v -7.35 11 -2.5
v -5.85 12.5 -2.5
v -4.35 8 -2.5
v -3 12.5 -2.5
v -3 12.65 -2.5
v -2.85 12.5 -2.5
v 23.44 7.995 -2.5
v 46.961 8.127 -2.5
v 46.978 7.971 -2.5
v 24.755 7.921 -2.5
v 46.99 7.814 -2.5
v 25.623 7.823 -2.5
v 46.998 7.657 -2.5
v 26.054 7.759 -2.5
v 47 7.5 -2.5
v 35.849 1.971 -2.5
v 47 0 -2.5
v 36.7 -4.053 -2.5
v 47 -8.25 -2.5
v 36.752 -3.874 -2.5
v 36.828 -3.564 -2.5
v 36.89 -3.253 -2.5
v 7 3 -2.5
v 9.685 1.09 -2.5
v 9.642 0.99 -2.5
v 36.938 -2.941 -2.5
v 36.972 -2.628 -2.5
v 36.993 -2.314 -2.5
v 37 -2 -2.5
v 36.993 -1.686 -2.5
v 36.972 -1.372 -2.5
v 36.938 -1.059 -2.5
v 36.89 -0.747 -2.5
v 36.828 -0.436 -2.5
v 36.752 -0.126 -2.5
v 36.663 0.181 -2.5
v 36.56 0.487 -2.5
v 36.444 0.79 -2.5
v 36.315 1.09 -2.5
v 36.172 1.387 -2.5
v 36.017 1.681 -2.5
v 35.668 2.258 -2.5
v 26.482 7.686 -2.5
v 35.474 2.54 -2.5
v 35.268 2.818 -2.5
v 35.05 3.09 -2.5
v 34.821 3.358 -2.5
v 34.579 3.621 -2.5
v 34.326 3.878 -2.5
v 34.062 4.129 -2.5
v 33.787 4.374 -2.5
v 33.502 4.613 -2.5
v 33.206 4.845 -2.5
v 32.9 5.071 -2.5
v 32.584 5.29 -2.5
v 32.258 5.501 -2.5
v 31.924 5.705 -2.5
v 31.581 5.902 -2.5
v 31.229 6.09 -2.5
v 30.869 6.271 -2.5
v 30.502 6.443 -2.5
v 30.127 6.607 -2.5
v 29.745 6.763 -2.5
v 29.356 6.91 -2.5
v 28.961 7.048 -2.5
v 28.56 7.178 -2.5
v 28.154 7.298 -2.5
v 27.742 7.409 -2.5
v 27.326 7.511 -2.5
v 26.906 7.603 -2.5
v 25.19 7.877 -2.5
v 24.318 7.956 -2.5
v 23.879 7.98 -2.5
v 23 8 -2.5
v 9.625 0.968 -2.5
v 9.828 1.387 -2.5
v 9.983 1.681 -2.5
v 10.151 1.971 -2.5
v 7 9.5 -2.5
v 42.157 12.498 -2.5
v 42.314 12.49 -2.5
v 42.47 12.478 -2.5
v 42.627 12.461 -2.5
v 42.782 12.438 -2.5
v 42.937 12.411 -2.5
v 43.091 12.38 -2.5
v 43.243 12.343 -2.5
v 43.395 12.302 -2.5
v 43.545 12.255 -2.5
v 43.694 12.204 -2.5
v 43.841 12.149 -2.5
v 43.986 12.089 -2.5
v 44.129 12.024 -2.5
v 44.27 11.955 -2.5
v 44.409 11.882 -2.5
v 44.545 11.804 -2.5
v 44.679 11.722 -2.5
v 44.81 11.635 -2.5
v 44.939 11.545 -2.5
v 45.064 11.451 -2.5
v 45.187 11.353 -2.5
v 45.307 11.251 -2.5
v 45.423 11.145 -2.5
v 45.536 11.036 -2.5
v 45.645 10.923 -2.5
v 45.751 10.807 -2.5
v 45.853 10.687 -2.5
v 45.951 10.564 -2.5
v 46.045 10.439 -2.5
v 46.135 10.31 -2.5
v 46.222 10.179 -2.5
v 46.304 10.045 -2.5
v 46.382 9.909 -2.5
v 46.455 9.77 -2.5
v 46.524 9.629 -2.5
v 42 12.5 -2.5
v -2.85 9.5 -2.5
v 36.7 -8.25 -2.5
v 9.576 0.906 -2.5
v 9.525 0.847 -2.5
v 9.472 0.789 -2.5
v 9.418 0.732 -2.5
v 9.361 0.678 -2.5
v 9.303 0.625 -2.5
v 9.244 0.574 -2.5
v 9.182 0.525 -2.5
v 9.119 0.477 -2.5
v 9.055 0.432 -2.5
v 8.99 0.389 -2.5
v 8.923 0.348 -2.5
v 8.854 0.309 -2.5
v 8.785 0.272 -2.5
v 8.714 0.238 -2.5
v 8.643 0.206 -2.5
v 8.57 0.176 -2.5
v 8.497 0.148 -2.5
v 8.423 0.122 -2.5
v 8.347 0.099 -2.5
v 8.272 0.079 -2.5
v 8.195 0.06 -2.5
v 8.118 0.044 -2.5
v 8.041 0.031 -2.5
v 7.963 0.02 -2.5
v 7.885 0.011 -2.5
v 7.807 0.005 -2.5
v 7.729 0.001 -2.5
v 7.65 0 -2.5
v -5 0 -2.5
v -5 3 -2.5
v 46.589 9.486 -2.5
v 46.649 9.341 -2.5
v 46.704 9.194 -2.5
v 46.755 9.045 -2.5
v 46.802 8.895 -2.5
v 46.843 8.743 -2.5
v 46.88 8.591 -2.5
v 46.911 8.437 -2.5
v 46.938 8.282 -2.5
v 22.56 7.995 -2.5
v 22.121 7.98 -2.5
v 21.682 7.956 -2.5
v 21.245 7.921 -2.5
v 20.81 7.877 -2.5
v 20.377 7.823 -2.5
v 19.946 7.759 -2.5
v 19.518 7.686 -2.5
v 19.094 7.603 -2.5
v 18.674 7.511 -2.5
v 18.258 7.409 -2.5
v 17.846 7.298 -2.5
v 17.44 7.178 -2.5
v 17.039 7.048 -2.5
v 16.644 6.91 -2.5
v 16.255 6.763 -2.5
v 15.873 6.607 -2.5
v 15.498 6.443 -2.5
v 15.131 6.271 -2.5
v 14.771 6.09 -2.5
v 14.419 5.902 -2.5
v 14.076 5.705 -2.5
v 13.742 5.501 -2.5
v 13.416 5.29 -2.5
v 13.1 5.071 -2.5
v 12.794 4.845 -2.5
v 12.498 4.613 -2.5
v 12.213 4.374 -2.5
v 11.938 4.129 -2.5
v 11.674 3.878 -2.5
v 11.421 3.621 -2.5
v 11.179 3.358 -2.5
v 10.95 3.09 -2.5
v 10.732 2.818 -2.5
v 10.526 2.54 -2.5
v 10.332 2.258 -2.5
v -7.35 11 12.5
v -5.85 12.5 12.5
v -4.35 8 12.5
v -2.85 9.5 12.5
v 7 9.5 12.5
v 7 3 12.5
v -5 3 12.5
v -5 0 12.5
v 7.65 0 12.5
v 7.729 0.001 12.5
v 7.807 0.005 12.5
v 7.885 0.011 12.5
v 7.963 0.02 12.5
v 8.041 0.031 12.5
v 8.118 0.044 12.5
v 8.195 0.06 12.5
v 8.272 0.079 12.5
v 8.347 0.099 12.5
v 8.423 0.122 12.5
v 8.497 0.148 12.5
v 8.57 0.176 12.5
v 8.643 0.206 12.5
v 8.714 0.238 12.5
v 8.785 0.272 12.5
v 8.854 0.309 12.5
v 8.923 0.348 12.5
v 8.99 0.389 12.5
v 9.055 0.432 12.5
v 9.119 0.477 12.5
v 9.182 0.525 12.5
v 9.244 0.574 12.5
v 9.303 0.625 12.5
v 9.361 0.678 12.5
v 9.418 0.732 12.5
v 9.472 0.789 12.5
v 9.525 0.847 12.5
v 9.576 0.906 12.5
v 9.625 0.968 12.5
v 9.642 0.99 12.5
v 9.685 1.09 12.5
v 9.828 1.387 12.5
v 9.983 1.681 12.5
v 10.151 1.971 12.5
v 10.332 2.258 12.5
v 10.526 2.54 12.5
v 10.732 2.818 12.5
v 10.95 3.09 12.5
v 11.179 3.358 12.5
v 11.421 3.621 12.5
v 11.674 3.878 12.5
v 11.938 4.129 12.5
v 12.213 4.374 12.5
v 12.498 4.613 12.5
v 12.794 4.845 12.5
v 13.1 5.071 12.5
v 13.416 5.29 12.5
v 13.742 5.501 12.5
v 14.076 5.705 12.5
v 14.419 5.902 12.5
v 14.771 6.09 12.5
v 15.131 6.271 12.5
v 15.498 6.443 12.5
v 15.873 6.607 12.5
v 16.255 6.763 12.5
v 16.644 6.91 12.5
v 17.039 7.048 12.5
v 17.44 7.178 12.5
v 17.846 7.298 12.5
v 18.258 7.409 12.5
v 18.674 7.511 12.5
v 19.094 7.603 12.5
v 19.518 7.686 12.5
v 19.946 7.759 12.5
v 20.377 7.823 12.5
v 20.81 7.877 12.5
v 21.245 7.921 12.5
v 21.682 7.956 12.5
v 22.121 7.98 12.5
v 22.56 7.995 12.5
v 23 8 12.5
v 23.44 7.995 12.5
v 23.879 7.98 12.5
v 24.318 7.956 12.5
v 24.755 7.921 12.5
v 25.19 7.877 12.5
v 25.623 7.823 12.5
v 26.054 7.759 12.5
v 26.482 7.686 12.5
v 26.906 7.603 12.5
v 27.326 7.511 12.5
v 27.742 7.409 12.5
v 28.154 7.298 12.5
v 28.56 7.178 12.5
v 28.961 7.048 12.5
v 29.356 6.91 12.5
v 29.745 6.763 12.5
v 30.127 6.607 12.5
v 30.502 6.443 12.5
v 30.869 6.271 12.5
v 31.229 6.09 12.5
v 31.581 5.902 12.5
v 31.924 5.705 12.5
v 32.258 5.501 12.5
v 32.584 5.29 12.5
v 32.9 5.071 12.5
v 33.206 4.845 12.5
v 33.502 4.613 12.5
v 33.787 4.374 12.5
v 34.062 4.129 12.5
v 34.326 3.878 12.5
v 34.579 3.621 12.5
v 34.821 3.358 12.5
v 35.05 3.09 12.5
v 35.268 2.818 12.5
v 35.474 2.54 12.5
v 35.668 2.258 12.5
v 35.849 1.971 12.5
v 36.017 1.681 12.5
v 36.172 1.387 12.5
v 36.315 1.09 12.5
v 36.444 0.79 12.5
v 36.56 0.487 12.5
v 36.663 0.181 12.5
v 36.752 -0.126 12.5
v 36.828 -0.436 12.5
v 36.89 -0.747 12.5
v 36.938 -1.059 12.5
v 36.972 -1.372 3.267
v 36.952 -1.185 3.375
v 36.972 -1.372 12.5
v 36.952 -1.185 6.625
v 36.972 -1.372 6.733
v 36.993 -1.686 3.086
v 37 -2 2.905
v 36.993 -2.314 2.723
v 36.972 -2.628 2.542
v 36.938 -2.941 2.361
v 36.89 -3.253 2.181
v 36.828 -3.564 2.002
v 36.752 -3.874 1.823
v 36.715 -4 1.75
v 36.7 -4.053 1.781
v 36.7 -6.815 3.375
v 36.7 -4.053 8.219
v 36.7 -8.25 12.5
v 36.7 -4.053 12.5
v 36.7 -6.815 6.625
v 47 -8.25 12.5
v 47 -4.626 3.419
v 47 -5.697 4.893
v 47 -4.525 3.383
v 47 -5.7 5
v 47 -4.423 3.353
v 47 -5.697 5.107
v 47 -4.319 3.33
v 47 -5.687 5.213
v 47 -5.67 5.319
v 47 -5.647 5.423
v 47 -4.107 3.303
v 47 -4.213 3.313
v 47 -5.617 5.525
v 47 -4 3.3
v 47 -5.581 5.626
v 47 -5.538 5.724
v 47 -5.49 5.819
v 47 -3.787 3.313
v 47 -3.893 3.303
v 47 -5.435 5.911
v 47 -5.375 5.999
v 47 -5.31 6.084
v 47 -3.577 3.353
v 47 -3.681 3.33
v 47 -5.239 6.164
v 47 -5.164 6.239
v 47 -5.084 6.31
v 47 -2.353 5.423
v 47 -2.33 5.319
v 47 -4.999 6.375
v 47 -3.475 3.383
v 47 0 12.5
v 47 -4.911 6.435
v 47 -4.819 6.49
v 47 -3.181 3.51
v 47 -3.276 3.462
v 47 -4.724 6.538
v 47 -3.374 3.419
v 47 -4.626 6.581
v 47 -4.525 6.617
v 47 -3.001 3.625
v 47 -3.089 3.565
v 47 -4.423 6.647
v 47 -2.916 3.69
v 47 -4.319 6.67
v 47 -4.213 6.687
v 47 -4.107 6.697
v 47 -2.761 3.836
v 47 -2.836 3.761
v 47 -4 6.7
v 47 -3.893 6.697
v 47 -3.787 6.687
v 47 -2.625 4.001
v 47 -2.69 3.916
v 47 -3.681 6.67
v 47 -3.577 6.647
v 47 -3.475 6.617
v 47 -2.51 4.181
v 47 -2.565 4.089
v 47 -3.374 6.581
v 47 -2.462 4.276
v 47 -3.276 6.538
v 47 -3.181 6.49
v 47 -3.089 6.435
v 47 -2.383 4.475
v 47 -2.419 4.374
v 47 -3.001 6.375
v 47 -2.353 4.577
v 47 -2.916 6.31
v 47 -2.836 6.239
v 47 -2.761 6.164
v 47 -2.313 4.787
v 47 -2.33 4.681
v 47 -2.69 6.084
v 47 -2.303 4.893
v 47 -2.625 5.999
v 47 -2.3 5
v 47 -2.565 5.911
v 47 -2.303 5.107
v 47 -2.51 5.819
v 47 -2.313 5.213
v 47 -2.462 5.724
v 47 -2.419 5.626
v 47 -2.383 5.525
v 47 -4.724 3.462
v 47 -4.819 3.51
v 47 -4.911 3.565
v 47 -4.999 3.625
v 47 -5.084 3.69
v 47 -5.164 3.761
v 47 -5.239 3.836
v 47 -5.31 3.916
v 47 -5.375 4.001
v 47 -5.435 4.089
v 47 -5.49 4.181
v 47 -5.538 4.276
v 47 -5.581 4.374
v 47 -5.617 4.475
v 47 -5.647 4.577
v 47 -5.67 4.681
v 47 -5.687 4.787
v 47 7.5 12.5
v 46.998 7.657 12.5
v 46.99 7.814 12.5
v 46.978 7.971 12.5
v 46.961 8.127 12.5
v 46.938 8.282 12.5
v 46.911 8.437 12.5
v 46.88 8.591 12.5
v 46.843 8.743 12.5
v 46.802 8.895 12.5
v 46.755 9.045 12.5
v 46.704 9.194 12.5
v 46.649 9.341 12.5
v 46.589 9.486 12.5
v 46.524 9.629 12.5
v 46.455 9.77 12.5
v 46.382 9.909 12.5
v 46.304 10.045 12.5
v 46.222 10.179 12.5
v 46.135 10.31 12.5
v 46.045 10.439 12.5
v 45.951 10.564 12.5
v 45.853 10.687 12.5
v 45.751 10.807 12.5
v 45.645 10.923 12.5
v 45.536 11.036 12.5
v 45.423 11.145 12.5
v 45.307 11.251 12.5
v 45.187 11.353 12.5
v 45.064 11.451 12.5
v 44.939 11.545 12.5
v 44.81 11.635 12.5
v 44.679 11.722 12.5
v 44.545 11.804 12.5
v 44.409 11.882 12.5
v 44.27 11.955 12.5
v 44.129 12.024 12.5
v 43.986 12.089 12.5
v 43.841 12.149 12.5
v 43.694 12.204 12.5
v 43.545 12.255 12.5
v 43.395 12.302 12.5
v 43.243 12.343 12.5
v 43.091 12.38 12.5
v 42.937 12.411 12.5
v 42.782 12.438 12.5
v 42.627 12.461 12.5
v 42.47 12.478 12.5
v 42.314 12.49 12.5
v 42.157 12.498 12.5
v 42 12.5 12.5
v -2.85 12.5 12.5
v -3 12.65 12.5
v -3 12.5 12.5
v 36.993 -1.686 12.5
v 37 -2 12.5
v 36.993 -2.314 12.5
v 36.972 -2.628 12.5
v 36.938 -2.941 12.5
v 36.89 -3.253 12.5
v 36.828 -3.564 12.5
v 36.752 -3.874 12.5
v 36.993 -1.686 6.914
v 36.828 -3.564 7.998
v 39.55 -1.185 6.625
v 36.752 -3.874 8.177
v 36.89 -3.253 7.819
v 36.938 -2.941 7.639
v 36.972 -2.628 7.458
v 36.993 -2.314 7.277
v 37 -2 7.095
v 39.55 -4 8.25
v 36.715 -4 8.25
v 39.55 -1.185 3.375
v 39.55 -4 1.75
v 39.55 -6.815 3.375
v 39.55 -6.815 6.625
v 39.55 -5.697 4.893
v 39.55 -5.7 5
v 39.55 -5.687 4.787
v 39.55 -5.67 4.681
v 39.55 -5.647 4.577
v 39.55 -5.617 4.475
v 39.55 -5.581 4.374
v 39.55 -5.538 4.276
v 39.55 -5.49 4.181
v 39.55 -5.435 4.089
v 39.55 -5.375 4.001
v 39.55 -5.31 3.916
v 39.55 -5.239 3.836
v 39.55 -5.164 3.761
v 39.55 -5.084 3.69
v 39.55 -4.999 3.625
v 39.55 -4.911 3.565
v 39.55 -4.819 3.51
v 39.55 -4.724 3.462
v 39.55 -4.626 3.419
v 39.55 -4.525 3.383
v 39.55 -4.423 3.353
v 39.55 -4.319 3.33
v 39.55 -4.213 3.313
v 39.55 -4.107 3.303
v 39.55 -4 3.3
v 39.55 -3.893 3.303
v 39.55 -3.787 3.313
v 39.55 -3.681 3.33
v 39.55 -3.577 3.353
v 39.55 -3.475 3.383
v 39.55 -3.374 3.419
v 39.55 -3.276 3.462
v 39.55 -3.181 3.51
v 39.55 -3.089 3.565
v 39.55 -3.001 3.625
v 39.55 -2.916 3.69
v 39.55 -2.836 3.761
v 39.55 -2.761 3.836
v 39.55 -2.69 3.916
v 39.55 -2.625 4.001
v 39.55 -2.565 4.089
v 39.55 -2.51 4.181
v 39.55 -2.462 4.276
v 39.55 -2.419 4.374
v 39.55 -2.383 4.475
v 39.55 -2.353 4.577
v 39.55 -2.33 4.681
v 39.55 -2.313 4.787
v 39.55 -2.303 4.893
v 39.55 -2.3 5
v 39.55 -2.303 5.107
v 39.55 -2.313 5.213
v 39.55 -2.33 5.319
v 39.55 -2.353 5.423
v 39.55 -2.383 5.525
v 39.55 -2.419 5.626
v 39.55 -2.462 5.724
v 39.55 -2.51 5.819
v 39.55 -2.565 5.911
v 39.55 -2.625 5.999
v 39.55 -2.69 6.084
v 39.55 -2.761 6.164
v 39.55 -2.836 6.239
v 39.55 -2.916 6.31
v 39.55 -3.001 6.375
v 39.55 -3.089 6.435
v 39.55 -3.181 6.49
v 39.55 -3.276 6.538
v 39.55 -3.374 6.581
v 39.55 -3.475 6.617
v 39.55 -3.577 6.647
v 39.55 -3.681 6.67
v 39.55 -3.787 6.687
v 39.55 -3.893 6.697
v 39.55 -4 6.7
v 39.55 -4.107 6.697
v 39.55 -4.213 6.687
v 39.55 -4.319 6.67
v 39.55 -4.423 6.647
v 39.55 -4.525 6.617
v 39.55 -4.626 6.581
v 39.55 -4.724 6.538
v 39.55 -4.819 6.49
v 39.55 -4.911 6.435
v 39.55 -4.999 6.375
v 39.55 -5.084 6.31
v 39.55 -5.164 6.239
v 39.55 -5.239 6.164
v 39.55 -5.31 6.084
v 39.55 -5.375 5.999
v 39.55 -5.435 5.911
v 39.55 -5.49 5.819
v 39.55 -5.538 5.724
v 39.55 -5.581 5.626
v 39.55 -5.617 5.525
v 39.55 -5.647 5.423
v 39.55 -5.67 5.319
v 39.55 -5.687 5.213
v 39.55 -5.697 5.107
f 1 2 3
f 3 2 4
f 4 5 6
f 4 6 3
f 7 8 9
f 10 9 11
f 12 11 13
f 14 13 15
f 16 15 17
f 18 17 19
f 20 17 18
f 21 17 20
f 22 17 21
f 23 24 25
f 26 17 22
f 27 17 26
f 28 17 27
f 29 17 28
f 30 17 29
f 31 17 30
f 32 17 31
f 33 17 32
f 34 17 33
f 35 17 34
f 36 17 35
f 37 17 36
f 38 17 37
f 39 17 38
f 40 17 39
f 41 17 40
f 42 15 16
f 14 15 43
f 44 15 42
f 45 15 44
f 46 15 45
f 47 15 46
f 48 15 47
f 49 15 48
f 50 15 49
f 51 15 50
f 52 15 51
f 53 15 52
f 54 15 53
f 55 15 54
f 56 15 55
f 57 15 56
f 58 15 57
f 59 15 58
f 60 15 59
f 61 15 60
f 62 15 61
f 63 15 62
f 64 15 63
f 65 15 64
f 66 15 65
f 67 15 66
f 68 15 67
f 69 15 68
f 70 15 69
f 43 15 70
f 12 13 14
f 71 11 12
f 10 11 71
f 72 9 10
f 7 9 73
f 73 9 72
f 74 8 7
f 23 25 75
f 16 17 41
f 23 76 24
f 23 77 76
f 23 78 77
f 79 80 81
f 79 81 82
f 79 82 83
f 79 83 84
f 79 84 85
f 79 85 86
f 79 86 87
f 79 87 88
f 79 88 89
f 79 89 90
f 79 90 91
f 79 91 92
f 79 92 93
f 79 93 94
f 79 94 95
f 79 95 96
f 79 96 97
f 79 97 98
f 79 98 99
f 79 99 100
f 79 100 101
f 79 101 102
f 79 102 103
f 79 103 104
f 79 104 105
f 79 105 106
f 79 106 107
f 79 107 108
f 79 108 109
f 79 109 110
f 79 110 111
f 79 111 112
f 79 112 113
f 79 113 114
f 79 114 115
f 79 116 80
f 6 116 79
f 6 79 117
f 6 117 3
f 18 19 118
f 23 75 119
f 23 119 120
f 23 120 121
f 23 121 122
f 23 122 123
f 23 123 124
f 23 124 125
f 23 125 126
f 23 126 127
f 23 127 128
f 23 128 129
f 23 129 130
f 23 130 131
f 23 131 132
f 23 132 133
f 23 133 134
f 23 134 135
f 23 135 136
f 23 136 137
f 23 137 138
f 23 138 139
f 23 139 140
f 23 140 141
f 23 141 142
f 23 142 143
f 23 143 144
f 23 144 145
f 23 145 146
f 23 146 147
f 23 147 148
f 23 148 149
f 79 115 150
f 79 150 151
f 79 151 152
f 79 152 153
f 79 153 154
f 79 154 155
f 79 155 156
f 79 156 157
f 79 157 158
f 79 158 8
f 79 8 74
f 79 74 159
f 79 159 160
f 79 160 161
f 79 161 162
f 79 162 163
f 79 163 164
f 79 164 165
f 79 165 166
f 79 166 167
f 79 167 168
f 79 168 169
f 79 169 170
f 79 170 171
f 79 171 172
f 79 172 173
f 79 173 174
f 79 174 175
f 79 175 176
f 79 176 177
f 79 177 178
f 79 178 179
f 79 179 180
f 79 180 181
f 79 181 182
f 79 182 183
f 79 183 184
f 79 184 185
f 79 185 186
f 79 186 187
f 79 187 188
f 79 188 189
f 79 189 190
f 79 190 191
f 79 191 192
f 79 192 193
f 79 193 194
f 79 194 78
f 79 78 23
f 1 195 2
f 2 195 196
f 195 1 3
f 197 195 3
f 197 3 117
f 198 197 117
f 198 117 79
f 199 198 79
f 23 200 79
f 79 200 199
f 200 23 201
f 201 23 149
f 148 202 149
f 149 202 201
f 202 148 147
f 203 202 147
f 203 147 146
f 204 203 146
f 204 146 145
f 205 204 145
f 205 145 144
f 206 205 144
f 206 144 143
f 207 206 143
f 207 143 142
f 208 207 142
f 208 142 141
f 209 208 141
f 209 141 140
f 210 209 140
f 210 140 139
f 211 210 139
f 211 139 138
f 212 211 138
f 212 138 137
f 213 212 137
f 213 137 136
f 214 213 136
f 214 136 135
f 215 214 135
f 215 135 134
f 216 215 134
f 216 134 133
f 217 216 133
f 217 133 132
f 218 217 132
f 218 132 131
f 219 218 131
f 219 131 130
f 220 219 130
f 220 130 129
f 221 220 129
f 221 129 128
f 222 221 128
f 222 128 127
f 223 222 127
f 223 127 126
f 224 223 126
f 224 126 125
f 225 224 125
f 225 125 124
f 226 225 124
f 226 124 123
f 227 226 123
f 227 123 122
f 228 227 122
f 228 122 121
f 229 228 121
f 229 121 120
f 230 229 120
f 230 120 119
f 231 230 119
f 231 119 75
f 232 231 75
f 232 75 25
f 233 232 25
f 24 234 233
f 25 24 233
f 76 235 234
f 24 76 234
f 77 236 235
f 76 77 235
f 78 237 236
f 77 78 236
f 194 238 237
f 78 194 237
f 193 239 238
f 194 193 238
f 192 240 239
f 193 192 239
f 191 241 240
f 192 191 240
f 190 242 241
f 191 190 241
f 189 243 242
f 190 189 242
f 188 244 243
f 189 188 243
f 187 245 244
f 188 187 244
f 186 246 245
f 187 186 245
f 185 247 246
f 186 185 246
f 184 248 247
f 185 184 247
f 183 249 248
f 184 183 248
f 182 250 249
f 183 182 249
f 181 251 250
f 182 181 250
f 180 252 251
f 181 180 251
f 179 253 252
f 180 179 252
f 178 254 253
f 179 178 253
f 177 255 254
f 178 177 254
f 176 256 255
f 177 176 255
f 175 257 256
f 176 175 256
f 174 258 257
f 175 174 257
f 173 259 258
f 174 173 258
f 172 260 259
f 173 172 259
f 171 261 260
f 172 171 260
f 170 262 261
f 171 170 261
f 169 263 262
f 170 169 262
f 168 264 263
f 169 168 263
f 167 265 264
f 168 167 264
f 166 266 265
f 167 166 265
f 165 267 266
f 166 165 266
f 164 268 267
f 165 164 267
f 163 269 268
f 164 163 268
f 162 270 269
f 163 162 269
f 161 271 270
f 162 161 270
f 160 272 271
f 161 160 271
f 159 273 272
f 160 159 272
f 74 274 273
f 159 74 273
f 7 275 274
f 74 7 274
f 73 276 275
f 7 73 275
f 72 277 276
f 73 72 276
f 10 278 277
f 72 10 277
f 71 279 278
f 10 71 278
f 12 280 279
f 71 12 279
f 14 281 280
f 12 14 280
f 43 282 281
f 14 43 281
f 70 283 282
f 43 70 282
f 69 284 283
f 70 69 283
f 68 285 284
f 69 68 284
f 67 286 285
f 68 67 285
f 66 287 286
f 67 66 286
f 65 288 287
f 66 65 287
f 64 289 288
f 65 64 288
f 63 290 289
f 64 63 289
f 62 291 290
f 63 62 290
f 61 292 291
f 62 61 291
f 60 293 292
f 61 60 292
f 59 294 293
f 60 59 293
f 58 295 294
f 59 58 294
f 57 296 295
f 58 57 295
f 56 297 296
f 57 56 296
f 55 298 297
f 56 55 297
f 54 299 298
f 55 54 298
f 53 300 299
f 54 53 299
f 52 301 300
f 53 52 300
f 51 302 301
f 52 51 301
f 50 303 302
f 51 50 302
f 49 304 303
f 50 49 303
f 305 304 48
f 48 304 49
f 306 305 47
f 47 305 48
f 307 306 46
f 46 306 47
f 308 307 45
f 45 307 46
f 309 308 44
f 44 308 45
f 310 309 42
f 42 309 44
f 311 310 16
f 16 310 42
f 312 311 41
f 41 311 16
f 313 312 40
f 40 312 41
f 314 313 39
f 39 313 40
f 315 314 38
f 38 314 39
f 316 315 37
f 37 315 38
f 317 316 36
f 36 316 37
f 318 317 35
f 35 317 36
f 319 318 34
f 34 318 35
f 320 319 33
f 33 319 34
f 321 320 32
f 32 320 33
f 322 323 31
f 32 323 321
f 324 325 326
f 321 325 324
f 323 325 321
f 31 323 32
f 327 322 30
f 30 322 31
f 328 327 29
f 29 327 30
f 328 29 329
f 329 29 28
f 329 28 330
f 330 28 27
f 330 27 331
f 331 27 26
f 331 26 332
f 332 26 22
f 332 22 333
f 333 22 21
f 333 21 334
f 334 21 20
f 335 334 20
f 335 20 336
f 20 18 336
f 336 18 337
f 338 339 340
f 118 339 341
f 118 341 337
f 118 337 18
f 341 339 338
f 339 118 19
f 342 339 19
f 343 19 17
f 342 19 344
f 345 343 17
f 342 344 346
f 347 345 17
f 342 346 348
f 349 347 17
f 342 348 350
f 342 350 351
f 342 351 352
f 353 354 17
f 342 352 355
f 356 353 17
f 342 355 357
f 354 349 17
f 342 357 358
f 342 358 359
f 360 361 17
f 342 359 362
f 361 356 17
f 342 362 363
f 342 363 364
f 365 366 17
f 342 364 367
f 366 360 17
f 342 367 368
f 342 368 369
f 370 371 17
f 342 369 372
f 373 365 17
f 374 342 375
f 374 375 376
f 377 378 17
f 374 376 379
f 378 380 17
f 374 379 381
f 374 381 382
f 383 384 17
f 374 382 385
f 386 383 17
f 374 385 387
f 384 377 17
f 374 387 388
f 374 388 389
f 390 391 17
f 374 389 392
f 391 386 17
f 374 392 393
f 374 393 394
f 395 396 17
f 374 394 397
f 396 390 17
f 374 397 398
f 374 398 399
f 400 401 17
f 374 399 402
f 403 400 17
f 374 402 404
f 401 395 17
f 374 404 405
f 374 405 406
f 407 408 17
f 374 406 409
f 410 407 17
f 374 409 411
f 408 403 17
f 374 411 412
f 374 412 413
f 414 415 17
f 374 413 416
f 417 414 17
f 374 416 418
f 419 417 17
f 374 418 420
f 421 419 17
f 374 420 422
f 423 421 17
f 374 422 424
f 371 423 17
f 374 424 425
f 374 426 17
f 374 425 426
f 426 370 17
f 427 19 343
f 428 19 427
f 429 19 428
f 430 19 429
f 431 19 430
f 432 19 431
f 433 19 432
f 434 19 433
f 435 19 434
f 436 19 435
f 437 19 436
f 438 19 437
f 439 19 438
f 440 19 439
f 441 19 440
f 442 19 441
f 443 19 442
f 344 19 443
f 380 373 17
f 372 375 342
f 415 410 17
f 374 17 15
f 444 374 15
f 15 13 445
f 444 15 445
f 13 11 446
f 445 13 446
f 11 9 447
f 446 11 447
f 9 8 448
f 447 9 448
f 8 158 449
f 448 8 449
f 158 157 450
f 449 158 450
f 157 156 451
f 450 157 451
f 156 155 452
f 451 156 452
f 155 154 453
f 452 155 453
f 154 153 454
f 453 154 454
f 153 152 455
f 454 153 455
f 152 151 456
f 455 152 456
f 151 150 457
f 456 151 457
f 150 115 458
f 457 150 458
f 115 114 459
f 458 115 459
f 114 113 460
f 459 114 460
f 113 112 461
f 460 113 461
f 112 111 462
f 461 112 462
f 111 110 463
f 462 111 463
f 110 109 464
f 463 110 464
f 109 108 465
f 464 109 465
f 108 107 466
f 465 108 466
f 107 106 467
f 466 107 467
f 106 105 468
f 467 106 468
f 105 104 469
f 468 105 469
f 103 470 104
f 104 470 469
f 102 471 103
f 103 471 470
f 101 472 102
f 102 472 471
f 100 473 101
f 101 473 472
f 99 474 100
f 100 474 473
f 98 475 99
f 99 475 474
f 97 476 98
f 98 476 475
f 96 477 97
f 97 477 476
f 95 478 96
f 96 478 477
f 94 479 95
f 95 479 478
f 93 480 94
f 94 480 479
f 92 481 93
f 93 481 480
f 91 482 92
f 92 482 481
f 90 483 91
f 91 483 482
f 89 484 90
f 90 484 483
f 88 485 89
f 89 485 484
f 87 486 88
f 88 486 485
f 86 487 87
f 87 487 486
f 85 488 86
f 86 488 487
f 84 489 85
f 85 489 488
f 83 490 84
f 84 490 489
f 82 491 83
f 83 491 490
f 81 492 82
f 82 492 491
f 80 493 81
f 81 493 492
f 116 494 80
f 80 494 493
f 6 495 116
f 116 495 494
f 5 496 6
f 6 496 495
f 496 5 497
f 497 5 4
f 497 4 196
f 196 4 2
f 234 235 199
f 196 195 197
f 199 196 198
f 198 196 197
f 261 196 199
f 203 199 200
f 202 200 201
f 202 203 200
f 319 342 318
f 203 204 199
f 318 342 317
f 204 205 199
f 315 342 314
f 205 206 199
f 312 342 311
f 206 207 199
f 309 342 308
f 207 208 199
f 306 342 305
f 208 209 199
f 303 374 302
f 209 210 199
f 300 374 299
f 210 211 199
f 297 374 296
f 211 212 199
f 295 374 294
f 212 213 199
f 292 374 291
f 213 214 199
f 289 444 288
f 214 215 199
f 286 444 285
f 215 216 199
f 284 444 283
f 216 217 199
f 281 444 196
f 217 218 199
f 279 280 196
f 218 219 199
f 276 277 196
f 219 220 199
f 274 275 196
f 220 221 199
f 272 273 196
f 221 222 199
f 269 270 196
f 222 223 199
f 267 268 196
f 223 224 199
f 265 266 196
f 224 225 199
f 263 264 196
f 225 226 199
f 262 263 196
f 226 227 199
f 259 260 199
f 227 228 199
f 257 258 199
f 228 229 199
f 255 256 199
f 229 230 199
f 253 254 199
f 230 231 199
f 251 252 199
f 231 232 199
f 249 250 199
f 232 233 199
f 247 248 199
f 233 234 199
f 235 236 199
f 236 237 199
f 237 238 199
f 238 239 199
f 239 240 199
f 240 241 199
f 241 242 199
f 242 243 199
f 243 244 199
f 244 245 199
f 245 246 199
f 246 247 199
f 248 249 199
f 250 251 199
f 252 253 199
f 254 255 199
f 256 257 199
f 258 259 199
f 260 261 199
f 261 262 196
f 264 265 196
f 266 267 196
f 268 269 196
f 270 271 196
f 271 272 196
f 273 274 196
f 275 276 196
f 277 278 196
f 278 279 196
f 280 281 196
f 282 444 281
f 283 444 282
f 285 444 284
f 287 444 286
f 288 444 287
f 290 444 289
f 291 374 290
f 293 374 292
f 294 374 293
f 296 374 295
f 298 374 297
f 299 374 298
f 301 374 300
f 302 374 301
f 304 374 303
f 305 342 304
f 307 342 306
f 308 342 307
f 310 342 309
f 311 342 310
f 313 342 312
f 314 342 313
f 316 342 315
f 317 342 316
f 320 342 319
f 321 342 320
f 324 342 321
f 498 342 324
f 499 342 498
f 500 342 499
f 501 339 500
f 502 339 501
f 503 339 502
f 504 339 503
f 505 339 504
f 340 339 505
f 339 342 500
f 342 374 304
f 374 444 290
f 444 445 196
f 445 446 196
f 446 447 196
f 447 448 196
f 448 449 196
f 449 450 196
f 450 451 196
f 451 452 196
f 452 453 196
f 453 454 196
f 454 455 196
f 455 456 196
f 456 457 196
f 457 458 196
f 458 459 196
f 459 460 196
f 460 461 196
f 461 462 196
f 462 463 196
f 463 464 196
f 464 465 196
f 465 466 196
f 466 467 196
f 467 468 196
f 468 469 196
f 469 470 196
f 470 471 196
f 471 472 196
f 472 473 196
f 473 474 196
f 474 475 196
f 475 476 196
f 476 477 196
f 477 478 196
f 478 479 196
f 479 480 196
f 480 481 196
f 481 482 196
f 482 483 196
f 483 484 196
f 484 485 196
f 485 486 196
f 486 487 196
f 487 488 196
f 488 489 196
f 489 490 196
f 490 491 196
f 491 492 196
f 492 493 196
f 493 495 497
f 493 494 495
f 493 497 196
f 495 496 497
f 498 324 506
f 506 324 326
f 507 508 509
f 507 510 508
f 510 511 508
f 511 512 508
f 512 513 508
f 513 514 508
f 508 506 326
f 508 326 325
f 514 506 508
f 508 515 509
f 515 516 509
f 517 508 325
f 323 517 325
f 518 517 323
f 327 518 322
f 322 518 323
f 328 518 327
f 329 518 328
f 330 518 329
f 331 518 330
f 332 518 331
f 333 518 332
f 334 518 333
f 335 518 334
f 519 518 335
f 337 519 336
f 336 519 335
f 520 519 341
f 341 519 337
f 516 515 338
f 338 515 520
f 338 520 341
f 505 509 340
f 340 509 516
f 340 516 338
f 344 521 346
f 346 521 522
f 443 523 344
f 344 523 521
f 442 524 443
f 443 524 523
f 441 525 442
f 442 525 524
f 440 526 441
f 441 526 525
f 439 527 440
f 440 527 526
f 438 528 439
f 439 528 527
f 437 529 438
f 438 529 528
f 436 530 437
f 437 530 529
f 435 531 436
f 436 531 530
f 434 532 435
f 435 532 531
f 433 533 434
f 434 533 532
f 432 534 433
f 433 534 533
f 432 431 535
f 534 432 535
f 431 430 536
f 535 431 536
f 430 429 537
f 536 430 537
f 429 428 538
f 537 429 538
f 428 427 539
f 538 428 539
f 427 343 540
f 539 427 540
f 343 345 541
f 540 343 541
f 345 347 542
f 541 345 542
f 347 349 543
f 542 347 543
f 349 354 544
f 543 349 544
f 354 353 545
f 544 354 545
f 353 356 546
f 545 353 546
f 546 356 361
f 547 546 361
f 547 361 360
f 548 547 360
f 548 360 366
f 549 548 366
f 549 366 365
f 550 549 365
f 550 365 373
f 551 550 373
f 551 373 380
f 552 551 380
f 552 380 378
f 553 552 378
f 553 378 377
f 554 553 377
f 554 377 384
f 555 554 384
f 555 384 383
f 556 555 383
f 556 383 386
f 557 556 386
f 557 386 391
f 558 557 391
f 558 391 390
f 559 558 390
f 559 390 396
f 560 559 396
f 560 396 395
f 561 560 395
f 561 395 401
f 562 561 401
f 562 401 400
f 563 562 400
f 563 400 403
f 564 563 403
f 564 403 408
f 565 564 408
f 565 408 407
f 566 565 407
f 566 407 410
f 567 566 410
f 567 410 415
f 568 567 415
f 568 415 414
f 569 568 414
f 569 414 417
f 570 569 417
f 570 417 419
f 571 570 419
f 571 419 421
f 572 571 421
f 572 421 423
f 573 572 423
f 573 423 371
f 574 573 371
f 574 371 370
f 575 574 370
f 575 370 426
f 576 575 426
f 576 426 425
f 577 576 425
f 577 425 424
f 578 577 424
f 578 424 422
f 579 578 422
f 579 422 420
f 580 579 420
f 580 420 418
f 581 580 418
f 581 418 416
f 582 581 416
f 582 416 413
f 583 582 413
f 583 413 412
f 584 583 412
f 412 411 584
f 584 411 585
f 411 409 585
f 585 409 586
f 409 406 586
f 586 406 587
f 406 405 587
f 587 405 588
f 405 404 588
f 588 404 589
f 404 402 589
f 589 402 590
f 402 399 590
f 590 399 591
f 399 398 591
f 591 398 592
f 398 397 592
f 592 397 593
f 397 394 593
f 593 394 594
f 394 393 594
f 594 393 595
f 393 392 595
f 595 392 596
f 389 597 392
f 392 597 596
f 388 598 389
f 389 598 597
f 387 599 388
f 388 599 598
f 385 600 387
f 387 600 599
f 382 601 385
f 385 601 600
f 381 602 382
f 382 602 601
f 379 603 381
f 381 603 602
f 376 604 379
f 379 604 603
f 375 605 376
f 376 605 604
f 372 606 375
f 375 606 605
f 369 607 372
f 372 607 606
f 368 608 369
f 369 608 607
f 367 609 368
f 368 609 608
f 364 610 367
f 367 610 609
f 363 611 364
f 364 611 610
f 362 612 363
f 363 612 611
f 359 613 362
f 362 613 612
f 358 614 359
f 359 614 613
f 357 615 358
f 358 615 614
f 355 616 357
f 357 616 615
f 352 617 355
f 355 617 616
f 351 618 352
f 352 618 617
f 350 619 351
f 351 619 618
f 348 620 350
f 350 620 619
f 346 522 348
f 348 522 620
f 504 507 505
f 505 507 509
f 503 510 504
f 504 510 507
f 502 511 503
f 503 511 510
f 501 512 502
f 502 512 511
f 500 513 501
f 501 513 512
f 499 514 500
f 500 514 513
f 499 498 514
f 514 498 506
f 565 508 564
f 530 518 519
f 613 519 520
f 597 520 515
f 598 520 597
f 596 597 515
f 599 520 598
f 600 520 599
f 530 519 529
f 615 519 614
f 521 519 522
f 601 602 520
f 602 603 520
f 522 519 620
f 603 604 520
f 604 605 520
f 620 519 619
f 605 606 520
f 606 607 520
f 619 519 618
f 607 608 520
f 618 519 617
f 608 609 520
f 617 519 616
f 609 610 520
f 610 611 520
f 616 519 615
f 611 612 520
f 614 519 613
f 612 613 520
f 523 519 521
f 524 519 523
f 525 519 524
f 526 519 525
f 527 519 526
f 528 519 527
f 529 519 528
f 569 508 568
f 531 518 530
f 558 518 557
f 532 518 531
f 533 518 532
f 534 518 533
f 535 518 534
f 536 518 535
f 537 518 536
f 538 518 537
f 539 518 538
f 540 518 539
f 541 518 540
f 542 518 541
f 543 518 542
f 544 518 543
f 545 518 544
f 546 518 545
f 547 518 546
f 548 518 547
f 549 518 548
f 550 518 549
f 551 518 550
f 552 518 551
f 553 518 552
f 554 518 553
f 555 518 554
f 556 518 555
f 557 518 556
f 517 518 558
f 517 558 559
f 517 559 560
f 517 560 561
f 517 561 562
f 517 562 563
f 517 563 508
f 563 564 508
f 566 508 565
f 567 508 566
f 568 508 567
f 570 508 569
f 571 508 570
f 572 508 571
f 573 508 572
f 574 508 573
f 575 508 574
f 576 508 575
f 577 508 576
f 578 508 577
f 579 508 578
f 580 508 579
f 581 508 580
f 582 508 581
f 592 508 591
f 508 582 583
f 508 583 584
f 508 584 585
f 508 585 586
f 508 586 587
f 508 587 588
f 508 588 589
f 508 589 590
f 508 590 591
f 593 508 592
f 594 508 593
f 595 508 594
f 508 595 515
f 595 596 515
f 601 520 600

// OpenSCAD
//---------------------------------------------------------------
//--  Eje Y final de carrera base larga.  (c) Pedro de Oro Martín
//---------------------------------------------------------------
//-- Released under the GPL license
//---------------------------------------------------------------

ancho=15;

module chaflan(x=5){
difference(){

translate([x,5,0]) cube([10,10,ancho+1],center=true);

cylinder(r=5,h=ancho+2,center=true, $fn=200);

}
}

difference(){

union(){

difference(){
translate([27,7.75,5])cube(size=[40,9.5,ancho], center=true);//lado base

translate([42,7.5,5])
chaflan(x=5);
}

translate([21,1.5,5])cube(size=[52,3,ancho], center=true);//central
translate([2,11,5])cube(size=[10,3,ancho], center=true);//lado pestaña

//pestaña
difference()
{
	translate([-4.35,11,5])cylinder(h=ancho, r=3, $fn=4, center=true);
	translate([-4.5,14,5])cube(size=[3,3,ancho+1], center=true);

}

translate([52,0,0])
difference()
{
	translate([-10.15,-2,5])cube(size=[10.3,12.5,ancho], center=true);//tornillo
	translate([-14,-4,5])rotate([0,90,0])cylinder(h=3.1, r=3.25, $fn=6, center=true);//tuerca
	translate([-9,-4,5])rotate([0,90,0])cylinder(h=30, r=1.7, $fn=100, center=true);//tuerca

}

}

translate([23,-2,5])
scale([1.4,1,1])
cylinder(r=10,h=17,center=true,$fn=200);

translate([7.65,2.5,5])
rotate([0,0,-90])
scale([0.5,0.5,1])
chaflan(x=8);
	
}
